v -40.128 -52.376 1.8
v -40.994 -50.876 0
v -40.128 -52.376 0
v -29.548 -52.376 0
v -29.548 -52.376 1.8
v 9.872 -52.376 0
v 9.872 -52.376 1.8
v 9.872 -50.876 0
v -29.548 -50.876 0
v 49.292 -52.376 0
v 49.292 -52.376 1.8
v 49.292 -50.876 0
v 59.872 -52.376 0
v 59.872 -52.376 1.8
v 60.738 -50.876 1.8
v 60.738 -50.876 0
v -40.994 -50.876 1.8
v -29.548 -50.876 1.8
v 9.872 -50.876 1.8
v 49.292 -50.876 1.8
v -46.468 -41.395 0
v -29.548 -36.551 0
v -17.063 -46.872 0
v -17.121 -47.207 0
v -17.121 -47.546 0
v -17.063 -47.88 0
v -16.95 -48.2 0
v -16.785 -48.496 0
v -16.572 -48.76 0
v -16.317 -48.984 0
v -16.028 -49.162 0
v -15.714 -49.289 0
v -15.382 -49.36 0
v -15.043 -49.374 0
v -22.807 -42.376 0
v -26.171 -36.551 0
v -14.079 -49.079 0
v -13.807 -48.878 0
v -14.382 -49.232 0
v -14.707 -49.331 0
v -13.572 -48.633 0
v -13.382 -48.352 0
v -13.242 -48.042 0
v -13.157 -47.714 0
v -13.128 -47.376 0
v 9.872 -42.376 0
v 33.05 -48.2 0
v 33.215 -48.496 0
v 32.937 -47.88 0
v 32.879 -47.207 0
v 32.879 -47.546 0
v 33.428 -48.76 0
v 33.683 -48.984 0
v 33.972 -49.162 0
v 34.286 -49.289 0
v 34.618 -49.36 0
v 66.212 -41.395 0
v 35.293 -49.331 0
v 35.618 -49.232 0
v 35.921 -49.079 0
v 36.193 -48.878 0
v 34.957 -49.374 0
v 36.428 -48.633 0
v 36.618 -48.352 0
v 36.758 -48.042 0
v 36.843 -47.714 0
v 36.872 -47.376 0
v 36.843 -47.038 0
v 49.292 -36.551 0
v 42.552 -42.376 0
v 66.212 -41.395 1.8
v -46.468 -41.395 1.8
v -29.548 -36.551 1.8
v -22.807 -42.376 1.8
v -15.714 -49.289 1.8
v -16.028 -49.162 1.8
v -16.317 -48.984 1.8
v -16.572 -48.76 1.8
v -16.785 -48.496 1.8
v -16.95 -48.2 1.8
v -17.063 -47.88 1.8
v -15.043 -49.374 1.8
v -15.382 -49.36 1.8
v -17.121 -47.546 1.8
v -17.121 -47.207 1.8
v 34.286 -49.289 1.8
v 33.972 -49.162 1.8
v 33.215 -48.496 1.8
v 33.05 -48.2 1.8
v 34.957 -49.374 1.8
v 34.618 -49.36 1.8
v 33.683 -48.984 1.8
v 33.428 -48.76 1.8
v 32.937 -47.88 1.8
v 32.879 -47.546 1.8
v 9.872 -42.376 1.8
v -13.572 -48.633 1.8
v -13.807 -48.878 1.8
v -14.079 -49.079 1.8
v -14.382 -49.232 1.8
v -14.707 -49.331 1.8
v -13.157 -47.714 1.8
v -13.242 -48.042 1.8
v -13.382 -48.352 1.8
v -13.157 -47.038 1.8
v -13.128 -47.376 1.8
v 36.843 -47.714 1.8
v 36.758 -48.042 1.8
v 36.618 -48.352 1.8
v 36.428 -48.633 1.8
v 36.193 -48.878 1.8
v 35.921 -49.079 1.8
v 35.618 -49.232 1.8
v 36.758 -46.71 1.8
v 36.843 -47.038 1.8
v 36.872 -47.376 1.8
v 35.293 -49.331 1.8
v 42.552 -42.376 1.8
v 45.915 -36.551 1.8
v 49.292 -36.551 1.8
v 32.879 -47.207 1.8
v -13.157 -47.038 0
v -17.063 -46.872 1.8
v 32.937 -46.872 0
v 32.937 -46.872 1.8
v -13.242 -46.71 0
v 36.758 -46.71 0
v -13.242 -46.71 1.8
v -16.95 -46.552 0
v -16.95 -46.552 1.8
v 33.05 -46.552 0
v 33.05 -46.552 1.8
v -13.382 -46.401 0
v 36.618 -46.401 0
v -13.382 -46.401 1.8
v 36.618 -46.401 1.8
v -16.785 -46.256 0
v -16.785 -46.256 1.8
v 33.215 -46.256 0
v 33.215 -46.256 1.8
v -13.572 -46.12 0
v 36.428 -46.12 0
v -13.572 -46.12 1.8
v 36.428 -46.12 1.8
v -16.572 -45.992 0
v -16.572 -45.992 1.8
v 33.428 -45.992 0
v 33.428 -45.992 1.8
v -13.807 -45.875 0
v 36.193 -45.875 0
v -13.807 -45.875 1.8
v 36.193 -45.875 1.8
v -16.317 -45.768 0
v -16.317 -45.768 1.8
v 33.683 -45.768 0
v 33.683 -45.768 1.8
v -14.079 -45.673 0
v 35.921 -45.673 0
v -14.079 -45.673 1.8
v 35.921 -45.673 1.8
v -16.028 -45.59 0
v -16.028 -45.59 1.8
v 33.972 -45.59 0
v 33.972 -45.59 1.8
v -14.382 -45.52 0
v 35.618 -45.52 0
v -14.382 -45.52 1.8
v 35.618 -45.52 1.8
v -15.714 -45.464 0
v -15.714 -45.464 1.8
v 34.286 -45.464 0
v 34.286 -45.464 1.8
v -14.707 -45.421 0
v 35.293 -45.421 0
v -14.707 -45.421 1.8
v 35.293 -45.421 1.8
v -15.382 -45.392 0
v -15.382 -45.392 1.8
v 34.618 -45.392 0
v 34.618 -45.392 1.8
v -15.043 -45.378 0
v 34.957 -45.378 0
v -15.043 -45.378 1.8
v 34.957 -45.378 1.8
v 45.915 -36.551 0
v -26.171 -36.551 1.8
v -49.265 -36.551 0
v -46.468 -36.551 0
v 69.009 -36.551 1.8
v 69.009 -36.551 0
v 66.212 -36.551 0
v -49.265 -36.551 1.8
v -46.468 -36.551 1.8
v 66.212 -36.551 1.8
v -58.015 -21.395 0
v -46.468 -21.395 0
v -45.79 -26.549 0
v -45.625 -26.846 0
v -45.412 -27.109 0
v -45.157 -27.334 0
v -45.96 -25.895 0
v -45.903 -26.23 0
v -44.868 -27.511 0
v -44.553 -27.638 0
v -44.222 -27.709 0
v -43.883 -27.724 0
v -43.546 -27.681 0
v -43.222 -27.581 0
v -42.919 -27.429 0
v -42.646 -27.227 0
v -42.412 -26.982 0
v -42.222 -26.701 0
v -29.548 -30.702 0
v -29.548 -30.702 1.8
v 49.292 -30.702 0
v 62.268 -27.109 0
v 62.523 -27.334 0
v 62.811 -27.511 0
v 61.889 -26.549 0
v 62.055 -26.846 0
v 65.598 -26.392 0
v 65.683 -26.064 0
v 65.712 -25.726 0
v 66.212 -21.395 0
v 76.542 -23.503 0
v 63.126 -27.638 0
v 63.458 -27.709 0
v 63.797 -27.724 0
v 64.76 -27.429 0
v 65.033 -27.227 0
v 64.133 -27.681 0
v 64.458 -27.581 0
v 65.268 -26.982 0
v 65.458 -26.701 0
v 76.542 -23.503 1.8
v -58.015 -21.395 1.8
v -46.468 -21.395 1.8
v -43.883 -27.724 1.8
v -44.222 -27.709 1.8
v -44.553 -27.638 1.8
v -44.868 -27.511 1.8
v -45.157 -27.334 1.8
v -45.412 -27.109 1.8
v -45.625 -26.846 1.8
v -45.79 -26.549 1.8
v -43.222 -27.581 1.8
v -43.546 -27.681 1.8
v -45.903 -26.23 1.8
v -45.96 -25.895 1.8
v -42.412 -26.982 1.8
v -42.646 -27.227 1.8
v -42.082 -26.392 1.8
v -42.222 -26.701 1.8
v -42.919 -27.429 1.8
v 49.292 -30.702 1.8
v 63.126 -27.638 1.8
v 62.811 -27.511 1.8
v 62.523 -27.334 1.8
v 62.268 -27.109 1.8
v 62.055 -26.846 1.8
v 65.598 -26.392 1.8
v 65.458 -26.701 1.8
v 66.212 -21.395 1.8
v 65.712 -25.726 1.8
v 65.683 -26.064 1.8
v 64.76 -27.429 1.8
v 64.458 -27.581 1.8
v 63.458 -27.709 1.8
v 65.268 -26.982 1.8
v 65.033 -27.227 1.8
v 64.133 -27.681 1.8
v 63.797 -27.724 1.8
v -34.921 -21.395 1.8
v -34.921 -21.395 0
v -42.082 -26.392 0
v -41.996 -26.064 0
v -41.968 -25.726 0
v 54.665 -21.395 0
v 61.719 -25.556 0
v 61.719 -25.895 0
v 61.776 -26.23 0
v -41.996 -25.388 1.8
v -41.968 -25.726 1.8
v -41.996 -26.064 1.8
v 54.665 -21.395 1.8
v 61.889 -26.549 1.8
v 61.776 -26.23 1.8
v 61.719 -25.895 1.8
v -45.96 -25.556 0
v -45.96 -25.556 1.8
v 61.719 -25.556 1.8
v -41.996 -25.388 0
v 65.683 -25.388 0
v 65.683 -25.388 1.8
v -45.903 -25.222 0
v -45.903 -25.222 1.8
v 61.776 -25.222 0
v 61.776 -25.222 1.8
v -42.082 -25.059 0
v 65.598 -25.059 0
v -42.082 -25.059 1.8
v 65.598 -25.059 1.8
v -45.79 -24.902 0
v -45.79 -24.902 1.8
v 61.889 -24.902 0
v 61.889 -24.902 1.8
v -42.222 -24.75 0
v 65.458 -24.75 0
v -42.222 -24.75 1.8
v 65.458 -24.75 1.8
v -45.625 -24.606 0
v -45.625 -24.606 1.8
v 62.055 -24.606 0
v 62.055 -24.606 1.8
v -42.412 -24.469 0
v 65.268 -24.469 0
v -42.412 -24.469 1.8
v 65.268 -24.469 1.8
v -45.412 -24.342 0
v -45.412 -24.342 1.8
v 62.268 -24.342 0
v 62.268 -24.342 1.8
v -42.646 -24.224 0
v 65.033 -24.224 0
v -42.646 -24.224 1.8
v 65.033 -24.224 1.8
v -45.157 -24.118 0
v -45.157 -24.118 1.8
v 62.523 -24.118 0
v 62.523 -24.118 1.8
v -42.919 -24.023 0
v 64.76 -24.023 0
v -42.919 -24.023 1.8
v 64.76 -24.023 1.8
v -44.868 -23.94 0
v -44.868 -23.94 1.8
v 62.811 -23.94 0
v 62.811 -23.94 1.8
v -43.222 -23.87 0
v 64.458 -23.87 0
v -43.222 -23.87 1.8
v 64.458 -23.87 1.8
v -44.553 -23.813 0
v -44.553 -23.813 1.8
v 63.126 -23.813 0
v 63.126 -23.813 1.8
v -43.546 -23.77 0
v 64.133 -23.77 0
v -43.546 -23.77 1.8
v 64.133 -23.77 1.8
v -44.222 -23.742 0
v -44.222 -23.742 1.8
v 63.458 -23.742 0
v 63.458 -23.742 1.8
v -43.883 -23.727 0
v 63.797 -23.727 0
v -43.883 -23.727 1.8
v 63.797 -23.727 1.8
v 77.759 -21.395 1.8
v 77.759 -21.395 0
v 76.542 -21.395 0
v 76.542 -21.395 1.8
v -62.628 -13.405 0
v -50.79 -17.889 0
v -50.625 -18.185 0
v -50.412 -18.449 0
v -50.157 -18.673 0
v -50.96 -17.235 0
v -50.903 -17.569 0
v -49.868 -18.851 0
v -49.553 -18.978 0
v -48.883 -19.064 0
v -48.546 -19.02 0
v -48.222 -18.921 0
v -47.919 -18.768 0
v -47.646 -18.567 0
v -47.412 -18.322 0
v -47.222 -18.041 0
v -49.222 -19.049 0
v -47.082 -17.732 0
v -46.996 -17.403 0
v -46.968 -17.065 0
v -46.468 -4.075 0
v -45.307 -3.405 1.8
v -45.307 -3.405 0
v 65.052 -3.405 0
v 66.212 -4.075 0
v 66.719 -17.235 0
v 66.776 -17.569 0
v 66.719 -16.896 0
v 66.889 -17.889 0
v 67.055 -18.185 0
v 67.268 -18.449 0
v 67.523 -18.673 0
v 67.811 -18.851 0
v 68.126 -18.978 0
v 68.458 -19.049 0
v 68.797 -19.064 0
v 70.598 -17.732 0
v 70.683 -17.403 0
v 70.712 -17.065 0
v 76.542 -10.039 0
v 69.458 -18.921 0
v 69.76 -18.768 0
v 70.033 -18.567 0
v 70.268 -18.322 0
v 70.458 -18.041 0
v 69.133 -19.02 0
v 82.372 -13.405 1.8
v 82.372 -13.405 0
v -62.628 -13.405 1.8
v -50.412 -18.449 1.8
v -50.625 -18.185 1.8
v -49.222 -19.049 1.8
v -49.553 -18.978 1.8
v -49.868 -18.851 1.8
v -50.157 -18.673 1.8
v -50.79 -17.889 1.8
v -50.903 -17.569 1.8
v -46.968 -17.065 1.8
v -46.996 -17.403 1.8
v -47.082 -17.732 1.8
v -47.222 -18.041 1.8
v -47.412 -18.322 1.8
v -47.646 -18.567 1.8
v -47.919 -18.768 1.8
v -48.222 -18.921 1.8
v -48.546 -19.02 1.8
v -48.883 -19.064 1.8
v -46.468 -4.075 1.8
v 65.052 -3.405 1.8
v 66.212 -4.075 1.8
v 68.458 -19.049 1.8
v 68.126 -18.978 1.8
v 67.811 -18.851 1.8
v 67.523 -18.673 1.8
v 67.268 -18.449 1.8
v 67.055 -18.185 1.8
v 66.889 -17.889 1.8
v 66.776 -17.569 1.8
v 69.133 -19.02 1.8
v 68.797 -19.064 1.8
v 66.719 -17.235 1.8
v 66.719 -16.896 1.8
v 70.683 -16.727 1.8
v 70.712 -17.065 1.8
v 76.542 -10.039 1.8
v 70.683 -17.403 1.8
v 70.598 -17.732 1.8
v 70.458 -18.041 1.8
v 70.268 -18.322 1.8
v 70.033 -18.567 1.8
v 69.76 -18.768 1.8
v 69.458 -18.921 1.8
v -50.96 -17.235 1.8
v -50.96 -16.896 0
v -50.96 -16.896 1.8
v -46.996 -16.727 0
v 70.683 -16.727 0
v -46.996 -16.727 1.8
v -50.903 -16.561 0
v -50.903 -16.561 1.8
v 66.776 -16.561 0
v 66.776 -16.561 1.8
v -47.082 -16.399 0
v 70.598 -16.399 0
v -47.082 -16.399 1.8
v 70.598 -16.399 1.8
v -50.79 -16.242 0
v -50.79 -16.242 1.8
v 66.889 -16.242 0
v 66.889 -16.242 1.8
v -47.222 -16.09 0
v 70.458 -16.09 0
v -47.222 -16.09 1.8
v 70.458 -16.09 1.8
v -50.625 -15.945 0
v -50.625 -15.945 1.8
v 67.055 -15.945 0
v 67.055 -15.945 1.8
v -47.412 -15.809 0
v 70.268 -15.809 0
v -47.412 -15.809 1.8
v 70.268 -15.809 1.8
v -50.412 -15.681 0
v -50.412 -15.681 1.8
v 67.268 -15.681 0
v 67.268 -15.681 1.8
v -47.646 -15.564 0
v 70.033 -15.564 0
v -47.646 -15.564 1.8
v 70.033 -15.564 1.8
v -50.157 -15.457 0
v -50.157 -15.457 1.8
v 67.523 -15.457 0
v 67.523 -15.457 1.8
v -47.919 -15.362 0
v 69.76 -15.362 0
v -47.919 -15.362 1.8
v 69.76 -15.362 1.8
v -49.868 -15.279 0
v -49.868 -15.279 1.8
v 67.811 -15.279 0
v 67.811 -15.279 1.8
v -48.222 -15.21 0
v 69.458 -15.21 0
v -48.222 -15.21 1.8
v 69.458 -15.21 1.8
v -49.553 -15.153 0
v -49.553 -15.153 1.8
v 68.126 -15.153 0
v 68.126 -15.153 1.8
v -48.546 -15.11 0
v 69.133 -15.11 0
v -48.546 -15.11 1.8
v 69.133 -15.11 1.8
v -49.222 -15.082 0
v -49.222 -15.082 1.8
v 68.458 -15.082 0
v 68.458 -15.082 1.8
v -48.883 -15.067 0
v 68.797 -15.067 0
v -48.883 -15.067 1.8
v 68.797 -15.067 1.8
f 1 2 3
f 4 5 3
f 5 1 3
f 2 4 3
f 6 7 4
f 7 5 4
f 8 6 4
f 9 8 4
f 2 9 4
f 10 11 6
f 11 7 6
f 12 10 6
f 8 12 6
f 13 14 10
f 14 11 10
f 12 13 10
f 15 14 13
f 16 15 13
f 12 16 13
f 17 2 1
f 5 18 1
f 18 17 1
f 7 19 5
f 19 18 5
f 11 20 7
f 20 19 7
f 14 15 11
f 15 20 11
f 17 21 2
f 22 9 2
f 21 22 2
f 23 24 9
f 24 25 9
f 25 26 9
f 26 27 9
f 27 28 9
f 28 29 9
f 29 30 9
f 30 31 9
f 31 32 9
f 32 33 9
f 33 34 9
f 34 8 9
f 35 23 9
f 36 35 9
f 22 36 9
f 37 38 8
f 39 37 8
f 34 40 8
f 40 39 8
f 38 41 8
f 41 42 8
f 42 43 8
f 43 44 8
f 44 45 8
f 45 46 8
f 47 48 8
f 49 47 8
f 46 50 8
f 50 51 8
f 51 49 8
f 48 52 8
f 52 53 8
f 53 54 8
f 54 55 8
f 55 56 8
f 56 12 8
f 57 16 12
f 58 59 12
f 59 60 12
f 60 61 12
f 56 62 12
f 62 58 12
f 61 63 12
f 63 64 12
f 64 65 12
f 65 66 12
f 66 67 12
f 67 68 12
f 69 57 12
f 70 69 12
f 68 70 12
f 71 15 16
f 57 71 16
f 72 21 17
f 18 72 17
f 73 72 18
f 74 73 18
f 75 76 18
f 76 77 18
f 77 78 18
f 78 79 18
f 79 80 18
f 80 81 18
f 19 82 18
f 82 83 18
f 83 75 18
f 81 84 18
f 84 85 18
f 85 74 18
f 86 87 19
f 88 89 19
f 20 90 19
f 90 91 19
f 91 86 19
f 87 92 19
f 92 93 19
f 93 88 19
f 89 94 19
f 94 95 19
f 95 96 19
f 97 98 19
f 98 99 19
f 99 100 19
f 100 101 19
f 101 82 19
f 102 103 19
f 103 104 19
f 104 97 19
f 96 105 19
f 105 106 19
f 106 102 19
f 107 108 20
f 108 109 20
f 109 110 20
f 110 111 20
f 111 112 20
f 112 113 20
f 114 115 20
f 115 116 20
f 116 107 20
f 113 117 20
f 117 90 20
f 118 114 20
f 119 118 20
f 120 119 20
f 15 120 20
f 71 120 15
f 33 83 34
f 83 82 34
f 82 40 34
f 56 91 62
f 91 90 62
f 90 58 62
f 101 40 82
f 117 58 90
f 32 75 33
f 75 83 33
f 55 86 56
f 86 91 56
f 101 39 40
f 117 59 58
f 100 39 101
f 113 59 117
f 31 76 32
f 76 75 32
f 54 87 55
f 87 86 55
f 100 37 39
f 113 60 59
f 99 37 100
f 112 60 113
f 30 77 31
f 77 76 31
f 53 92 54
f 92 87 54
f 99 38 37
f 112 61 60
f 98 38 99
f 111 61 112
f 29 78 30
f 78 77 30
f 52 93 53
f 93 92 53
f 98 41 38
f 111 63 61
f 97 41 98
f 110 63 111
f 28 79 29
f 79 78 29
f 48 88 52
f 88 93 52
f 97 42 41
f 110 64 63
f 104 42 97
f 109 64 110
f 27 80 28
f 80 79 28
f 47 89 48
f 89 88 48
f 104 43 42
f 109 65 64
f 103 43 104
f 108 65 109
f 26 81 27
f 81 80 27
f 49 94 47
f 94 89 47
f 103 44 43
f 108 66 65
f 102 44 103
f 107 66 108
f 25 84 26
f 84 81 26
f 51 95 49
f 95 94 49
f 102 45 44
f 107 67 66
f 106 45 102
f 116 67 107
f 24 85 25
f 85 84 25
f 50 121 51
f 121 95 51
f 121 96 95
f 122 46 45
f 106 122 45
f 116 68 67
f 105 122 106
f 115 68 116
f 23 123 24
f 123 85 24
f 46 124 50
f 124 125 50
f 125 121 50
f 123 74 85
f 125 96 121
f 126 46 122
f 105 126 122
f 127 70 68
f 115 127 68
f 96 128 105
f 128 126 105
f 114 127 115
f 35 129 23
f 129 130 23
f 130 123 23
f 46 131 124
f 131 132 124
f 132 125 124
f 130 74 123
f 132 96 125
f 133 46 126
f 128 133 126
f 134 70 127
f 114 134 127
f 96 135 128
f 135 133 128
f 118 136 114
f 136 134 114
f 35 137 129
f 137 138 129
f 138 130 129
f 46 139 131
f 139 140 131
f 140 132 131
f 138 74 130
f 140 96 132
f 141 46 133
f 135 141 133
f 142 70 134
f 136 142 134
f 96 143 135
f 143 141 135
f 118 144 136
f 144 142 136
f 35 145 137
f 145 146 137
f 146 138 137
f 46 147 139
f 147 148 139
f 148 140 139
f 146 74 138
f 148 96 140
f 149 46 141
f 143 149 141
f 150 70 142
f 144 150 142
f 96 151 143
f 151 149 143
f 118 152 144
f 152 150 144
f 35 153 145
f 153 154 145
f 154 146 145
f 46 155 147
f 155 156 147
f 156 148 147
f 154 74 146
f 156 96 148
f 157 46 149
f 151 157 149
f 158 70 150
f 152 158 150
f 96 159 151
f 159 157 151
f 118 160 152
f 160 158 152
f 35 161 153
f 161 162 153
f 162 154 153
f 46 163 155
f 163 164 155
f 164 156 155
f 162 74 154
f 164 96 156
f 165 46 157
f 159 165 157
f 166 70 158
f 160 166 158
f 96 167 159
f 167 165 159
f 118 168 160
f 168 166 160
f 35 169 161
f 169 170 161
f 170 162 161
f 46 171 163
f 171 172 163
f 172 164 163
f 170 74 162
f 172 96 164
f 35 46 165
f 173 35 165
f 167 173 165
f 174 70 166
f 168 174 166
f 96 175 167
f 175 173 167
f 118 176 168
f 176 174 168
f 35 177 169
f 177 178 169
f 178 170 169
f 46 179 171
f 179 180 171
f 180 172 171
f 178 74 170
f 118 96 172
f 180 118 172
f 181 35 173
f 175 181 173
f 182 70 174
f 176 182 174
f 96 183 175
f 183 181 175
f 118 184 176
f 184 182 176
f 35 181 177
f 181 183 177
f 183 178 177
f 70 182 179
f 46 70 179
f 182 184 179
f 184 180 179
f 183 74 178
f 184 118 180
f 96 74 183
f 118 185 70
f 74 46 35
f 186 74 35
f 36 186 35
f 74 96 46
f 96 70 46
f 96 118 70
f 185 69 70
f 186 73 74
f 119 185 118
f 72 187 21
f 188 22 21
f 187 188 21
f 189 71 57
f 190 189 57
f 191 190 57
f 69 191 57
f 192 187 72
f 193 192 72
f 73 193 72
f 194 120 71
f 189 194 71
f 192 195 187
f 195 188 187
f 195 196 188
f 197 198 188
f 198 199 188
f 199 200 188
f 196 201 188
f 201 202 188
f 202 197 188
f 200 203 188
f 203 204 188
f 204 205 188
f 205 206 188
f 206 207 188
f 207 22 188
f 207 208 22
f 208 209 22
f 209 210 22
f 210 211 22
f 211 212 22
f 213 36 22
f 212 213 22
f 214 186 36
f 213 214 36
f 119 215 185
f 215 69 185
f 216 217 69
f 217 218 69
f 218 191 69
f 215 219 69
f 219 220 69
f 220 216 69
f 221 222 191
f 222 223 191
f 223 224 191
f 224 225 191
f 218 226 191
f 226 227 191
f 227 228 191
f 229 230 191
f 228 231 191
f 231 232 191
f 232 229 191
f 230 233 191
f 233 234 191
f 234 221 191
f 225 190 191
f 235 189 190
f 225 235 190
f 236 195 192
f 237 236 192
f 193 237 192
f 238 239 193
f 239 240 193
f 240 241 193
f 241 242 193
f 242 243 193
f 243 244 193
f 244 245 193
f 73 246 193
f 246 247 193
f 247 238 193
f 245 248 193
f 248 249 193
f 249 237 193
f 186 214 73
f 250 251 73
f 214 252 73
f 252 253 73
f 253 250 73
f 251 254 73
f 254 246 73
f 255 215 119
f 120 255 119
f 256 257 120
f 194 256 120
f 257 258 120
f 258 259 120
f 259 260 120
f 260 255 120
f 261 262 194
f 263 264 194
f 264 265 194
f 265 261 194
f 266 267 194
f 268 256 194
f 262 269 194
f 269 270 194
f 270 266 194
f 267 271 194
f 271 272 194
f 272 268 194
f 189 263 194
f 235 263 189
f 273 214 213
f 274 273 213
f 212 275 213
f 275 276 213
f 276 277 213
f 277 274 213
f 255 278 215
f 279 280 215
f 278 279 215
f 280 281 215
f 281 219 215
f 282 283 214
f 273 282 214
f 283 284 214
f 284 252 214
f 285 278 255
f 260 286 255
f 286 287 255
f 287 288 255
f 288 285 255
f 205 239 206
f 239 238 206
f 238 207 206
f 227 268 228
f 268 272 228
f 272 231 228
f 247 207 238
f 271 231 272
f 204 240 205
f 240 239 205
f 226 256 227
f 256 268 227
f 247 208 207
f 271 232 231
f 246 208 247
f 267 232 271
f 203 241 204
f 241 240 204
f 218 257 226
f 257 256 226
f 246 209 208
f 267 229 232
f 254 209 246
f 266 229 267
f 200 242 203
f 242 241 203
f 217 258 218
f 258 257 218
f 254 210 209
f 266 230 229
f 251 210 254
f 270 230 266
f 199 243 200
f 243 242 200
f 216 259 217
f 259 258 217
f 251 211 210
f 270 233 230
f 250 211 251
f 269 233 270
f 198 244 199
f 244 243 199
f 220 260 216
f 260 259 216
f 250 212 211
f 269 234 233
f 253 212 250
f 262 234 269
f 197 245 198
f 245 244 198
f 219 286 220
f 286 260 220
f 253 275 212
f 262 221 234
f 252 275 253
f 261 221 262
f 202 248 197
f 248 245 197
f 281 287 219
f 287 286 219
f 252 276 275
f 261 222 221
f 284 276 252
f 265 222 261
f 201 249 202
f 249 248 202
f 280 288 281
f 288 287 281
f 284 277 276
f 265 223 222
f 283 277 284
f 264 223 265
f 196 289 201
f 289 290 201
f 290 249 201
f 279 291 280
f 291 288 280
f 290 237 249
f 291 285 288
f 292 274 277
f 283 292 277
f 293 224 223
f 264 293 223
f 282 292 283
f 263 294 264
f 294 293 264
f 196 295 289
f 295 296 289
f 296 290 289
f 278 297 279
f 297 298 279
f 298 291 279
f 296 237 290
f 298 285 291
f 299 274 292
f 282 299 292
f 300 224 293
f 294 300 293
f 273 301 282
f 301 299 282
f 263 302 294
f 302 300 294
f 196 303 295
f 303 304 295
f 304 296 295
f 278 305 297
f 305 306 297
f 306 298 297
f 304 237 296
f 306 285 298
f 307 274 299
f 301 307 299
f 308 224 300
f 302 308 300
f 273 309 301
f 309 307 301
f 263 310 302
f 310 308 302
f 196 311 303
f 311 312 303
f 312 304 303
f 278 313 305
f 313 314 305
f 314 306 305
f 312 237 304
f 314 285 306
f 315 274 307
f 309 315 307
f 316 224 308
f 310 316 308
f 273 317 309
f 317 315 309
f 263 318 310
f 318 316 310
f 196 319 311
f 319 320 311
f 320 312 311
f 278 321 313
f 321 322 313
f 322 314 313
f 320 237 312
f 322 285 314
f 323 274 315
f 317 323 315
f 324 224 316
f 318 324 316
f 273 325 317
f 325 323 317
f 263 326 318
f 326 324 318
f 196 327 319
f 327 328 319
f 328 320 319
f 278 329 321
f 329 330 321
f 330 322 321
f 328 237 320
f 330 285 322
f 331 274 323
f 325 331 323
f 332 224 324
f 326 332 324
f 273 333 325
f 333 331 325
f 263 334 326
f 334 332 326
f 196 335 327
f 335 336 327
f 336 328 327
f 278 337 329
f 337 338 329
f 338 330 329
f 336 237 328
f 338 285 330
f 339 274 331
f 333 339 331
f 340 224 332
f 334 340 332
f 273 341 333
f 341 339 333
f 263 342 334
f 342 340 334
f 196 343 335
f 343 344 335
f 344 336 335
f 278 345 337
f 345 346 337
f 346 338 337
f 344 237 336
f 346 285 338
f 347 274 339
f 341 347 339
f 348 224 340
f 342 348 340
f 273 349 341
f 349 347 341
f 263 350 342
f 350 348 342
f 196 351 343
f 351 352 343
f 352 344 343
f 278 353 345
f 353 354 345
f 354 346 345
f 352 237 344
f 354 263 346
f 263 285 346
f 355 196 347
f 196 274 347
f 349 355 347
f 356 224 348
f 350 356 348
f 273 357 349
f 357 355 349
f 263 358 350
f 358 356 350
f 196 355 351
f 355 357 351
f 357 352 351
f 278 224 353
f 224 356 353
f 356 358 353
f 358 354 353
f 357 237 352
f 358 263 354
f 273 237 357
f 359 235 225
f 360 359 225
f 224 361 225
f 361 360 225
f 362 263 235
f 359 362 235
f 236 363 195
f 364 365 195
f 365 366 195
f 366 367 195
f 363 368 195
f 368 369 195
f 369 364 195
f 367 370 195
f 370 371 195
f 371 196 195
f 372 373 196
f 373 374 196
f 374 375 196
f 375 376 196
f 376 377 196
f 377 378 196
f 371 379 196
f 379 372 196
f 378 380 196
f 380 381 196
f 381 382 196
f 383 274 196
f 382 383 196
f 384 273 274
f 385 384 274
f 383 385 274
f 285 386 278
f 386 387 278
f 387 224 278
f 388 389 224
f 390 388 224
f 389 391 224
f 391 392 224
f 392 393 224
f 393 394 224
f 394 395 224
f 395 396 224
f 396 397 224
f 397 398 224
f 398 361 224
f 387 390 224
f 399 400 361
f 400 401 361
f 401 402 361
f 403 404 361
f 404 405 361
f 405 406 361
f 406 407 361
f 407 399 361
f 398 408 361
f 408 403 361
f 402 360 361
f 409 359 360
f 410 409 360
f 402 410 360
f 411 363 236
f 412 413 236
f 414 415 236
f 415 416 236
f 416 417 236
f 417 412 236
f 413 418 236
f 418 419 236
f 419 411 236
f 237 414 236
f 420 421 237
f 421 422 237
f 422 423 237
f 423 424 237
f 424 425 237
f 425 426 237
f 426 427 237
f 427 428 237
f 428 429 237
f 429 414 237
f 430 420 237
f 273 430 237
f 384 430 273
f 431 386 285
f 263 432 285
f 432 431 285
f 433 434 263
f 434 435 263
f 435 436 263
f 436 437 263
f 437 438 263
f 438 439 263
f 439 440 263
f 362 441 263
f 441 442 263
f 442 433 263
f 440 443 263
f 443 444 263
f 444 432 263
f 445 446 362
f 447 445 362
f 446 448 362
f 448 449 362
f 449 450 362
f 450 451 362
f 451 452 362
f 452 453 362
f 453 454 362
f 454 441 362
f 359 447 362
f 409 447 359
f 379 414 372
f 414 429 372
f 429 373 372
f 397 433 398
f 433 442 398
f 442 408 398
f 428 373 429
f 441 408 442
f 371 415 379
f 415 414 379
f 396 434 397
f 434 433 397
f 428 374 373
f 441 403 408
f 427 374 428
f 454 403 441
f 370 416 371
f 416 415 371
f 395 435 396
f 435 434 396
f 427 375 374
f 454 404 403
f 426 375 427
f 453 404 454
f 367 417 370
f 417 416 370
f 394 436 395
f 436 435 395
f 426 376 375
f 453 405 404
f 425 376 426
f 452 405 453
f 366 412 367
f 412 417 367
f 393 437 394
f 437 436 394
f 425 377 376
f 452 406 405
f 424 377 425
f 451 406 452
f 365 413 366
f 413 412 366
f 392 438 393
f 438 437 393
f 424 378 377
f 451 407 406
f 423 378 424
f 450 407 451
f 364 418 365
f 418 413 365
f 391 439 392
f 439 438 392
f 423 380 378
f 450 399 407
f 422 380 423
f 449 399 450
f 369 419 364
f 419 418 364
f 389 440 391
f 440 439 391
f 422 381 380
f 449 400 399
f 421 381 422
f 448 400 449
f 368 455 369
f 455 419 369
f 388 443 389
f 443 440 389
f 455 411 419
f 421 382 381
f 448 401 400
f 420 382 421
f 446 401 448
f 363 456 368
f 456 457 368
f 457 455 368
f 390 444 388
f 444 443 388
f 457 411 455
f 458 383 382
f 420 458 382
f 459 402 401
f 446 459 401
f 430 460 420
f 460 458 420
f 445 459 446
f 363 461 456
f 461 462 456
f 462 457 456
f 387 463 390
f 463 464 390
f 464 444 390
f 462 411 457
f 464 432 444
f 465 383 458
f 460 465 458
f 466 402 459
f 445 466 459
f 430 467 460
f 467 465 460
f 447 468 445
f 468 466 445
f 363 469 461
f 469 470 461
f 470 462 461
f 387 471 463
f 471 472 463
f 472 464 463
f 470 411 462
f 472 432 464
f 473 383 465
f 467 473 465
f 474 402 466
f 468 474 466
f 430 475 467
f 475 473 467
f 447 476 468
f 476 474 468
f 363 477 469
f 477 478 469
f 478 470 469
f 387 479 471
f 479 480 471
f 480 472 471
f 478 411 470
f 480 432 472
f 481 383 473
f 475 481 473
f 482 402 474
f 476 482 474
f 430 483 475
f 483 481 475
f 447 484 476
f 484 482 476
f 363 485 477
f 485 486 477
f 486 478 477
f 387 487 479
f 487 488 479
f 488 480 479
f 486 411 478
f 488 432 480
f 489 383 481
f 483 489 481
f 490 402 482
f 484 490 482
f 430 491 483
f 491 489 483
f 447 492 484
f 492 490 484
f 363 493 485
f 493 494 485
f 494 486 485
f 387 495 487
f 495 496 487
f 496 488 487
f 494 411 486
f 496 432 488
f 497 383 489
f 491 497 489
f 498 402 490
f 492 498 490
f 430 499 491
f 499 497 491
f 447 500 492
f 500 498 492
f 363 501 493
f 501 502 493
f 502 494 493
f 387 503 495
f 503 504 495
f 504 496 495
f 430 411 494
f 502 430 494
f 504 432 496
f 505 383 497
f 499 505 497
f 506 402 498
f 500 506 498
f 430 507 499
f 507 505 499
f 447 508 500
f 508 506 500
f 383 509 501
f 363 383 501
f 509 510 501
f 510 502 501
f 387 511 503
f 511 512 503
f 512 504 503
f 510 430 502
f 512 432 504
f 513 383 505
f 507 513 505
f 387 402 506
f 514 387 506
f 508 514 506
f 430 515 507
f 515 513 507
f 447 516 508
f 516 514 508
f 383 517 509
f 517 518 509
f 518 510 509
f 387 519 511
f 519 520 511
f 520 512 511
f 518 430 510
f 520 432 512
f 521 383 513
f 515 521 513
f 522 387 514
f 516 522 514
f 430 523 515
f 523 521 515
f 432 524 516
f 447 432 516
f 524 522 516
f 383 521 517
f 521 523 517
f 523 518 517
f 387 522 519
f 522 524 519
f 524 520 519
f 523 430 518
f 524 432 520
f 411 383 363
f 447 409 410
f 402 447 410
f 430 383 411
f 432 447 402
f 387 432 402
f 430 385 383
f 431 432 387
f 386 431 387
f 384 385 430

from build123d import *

# Parameters (mm, degrees)
EXTRUDE_2_DEPTH     = 1.8
SKETCH_2_R          = 2
CUT_EXTRUDE_3_DEPTH = 1.8


with BuildPart() as part:
    # 草圖1 → 填料-伸長2 (new body)
    with BuildSketch(Plane.XY):
        Polygon((-40.127945462, -52.376209375), (59.872054538, -52.376209375), (82.372054538, -13.405066204), (65.051546462, -3.405066204), (42.551546462, -42.376209375), (-22.807437387, -42.376209375), (-45.307437387, -3.405066204), (-62.627945462, -13.405066204), align=None)
    extrude(amount=EXTRUDE_2_DEPTH)

    # 草圖2 → 除料-伸長3 (cut)
    with BuildSketch(Plane.XY.offset(1.8)):
        with Locations((-48.967691424, -17.065320242)):
            Circle(SKETCH_2_R)
        with Locations((68.7118005, -17.065320242)):
            Circle(SKETCH_2_R)
        with Locations((-43.967691424, -25.72557428)):
            Circle(SKETCH_2_R)
        with Locations((63.7118005, -25.72557428)):
            Circle(SKETCH_2_R)
        with Locations((-15.127945462, -47.376209375)):
            Circle(SKETCH_2_R)
        with Locations((34.872054538, -47.376209375)):
            Circle(SKETCH_2_R)
    extrude(amount=-CUT_EXTRUDE_3_DEPTH, mode=Mode.SUBTRACT)


solid = part.part
